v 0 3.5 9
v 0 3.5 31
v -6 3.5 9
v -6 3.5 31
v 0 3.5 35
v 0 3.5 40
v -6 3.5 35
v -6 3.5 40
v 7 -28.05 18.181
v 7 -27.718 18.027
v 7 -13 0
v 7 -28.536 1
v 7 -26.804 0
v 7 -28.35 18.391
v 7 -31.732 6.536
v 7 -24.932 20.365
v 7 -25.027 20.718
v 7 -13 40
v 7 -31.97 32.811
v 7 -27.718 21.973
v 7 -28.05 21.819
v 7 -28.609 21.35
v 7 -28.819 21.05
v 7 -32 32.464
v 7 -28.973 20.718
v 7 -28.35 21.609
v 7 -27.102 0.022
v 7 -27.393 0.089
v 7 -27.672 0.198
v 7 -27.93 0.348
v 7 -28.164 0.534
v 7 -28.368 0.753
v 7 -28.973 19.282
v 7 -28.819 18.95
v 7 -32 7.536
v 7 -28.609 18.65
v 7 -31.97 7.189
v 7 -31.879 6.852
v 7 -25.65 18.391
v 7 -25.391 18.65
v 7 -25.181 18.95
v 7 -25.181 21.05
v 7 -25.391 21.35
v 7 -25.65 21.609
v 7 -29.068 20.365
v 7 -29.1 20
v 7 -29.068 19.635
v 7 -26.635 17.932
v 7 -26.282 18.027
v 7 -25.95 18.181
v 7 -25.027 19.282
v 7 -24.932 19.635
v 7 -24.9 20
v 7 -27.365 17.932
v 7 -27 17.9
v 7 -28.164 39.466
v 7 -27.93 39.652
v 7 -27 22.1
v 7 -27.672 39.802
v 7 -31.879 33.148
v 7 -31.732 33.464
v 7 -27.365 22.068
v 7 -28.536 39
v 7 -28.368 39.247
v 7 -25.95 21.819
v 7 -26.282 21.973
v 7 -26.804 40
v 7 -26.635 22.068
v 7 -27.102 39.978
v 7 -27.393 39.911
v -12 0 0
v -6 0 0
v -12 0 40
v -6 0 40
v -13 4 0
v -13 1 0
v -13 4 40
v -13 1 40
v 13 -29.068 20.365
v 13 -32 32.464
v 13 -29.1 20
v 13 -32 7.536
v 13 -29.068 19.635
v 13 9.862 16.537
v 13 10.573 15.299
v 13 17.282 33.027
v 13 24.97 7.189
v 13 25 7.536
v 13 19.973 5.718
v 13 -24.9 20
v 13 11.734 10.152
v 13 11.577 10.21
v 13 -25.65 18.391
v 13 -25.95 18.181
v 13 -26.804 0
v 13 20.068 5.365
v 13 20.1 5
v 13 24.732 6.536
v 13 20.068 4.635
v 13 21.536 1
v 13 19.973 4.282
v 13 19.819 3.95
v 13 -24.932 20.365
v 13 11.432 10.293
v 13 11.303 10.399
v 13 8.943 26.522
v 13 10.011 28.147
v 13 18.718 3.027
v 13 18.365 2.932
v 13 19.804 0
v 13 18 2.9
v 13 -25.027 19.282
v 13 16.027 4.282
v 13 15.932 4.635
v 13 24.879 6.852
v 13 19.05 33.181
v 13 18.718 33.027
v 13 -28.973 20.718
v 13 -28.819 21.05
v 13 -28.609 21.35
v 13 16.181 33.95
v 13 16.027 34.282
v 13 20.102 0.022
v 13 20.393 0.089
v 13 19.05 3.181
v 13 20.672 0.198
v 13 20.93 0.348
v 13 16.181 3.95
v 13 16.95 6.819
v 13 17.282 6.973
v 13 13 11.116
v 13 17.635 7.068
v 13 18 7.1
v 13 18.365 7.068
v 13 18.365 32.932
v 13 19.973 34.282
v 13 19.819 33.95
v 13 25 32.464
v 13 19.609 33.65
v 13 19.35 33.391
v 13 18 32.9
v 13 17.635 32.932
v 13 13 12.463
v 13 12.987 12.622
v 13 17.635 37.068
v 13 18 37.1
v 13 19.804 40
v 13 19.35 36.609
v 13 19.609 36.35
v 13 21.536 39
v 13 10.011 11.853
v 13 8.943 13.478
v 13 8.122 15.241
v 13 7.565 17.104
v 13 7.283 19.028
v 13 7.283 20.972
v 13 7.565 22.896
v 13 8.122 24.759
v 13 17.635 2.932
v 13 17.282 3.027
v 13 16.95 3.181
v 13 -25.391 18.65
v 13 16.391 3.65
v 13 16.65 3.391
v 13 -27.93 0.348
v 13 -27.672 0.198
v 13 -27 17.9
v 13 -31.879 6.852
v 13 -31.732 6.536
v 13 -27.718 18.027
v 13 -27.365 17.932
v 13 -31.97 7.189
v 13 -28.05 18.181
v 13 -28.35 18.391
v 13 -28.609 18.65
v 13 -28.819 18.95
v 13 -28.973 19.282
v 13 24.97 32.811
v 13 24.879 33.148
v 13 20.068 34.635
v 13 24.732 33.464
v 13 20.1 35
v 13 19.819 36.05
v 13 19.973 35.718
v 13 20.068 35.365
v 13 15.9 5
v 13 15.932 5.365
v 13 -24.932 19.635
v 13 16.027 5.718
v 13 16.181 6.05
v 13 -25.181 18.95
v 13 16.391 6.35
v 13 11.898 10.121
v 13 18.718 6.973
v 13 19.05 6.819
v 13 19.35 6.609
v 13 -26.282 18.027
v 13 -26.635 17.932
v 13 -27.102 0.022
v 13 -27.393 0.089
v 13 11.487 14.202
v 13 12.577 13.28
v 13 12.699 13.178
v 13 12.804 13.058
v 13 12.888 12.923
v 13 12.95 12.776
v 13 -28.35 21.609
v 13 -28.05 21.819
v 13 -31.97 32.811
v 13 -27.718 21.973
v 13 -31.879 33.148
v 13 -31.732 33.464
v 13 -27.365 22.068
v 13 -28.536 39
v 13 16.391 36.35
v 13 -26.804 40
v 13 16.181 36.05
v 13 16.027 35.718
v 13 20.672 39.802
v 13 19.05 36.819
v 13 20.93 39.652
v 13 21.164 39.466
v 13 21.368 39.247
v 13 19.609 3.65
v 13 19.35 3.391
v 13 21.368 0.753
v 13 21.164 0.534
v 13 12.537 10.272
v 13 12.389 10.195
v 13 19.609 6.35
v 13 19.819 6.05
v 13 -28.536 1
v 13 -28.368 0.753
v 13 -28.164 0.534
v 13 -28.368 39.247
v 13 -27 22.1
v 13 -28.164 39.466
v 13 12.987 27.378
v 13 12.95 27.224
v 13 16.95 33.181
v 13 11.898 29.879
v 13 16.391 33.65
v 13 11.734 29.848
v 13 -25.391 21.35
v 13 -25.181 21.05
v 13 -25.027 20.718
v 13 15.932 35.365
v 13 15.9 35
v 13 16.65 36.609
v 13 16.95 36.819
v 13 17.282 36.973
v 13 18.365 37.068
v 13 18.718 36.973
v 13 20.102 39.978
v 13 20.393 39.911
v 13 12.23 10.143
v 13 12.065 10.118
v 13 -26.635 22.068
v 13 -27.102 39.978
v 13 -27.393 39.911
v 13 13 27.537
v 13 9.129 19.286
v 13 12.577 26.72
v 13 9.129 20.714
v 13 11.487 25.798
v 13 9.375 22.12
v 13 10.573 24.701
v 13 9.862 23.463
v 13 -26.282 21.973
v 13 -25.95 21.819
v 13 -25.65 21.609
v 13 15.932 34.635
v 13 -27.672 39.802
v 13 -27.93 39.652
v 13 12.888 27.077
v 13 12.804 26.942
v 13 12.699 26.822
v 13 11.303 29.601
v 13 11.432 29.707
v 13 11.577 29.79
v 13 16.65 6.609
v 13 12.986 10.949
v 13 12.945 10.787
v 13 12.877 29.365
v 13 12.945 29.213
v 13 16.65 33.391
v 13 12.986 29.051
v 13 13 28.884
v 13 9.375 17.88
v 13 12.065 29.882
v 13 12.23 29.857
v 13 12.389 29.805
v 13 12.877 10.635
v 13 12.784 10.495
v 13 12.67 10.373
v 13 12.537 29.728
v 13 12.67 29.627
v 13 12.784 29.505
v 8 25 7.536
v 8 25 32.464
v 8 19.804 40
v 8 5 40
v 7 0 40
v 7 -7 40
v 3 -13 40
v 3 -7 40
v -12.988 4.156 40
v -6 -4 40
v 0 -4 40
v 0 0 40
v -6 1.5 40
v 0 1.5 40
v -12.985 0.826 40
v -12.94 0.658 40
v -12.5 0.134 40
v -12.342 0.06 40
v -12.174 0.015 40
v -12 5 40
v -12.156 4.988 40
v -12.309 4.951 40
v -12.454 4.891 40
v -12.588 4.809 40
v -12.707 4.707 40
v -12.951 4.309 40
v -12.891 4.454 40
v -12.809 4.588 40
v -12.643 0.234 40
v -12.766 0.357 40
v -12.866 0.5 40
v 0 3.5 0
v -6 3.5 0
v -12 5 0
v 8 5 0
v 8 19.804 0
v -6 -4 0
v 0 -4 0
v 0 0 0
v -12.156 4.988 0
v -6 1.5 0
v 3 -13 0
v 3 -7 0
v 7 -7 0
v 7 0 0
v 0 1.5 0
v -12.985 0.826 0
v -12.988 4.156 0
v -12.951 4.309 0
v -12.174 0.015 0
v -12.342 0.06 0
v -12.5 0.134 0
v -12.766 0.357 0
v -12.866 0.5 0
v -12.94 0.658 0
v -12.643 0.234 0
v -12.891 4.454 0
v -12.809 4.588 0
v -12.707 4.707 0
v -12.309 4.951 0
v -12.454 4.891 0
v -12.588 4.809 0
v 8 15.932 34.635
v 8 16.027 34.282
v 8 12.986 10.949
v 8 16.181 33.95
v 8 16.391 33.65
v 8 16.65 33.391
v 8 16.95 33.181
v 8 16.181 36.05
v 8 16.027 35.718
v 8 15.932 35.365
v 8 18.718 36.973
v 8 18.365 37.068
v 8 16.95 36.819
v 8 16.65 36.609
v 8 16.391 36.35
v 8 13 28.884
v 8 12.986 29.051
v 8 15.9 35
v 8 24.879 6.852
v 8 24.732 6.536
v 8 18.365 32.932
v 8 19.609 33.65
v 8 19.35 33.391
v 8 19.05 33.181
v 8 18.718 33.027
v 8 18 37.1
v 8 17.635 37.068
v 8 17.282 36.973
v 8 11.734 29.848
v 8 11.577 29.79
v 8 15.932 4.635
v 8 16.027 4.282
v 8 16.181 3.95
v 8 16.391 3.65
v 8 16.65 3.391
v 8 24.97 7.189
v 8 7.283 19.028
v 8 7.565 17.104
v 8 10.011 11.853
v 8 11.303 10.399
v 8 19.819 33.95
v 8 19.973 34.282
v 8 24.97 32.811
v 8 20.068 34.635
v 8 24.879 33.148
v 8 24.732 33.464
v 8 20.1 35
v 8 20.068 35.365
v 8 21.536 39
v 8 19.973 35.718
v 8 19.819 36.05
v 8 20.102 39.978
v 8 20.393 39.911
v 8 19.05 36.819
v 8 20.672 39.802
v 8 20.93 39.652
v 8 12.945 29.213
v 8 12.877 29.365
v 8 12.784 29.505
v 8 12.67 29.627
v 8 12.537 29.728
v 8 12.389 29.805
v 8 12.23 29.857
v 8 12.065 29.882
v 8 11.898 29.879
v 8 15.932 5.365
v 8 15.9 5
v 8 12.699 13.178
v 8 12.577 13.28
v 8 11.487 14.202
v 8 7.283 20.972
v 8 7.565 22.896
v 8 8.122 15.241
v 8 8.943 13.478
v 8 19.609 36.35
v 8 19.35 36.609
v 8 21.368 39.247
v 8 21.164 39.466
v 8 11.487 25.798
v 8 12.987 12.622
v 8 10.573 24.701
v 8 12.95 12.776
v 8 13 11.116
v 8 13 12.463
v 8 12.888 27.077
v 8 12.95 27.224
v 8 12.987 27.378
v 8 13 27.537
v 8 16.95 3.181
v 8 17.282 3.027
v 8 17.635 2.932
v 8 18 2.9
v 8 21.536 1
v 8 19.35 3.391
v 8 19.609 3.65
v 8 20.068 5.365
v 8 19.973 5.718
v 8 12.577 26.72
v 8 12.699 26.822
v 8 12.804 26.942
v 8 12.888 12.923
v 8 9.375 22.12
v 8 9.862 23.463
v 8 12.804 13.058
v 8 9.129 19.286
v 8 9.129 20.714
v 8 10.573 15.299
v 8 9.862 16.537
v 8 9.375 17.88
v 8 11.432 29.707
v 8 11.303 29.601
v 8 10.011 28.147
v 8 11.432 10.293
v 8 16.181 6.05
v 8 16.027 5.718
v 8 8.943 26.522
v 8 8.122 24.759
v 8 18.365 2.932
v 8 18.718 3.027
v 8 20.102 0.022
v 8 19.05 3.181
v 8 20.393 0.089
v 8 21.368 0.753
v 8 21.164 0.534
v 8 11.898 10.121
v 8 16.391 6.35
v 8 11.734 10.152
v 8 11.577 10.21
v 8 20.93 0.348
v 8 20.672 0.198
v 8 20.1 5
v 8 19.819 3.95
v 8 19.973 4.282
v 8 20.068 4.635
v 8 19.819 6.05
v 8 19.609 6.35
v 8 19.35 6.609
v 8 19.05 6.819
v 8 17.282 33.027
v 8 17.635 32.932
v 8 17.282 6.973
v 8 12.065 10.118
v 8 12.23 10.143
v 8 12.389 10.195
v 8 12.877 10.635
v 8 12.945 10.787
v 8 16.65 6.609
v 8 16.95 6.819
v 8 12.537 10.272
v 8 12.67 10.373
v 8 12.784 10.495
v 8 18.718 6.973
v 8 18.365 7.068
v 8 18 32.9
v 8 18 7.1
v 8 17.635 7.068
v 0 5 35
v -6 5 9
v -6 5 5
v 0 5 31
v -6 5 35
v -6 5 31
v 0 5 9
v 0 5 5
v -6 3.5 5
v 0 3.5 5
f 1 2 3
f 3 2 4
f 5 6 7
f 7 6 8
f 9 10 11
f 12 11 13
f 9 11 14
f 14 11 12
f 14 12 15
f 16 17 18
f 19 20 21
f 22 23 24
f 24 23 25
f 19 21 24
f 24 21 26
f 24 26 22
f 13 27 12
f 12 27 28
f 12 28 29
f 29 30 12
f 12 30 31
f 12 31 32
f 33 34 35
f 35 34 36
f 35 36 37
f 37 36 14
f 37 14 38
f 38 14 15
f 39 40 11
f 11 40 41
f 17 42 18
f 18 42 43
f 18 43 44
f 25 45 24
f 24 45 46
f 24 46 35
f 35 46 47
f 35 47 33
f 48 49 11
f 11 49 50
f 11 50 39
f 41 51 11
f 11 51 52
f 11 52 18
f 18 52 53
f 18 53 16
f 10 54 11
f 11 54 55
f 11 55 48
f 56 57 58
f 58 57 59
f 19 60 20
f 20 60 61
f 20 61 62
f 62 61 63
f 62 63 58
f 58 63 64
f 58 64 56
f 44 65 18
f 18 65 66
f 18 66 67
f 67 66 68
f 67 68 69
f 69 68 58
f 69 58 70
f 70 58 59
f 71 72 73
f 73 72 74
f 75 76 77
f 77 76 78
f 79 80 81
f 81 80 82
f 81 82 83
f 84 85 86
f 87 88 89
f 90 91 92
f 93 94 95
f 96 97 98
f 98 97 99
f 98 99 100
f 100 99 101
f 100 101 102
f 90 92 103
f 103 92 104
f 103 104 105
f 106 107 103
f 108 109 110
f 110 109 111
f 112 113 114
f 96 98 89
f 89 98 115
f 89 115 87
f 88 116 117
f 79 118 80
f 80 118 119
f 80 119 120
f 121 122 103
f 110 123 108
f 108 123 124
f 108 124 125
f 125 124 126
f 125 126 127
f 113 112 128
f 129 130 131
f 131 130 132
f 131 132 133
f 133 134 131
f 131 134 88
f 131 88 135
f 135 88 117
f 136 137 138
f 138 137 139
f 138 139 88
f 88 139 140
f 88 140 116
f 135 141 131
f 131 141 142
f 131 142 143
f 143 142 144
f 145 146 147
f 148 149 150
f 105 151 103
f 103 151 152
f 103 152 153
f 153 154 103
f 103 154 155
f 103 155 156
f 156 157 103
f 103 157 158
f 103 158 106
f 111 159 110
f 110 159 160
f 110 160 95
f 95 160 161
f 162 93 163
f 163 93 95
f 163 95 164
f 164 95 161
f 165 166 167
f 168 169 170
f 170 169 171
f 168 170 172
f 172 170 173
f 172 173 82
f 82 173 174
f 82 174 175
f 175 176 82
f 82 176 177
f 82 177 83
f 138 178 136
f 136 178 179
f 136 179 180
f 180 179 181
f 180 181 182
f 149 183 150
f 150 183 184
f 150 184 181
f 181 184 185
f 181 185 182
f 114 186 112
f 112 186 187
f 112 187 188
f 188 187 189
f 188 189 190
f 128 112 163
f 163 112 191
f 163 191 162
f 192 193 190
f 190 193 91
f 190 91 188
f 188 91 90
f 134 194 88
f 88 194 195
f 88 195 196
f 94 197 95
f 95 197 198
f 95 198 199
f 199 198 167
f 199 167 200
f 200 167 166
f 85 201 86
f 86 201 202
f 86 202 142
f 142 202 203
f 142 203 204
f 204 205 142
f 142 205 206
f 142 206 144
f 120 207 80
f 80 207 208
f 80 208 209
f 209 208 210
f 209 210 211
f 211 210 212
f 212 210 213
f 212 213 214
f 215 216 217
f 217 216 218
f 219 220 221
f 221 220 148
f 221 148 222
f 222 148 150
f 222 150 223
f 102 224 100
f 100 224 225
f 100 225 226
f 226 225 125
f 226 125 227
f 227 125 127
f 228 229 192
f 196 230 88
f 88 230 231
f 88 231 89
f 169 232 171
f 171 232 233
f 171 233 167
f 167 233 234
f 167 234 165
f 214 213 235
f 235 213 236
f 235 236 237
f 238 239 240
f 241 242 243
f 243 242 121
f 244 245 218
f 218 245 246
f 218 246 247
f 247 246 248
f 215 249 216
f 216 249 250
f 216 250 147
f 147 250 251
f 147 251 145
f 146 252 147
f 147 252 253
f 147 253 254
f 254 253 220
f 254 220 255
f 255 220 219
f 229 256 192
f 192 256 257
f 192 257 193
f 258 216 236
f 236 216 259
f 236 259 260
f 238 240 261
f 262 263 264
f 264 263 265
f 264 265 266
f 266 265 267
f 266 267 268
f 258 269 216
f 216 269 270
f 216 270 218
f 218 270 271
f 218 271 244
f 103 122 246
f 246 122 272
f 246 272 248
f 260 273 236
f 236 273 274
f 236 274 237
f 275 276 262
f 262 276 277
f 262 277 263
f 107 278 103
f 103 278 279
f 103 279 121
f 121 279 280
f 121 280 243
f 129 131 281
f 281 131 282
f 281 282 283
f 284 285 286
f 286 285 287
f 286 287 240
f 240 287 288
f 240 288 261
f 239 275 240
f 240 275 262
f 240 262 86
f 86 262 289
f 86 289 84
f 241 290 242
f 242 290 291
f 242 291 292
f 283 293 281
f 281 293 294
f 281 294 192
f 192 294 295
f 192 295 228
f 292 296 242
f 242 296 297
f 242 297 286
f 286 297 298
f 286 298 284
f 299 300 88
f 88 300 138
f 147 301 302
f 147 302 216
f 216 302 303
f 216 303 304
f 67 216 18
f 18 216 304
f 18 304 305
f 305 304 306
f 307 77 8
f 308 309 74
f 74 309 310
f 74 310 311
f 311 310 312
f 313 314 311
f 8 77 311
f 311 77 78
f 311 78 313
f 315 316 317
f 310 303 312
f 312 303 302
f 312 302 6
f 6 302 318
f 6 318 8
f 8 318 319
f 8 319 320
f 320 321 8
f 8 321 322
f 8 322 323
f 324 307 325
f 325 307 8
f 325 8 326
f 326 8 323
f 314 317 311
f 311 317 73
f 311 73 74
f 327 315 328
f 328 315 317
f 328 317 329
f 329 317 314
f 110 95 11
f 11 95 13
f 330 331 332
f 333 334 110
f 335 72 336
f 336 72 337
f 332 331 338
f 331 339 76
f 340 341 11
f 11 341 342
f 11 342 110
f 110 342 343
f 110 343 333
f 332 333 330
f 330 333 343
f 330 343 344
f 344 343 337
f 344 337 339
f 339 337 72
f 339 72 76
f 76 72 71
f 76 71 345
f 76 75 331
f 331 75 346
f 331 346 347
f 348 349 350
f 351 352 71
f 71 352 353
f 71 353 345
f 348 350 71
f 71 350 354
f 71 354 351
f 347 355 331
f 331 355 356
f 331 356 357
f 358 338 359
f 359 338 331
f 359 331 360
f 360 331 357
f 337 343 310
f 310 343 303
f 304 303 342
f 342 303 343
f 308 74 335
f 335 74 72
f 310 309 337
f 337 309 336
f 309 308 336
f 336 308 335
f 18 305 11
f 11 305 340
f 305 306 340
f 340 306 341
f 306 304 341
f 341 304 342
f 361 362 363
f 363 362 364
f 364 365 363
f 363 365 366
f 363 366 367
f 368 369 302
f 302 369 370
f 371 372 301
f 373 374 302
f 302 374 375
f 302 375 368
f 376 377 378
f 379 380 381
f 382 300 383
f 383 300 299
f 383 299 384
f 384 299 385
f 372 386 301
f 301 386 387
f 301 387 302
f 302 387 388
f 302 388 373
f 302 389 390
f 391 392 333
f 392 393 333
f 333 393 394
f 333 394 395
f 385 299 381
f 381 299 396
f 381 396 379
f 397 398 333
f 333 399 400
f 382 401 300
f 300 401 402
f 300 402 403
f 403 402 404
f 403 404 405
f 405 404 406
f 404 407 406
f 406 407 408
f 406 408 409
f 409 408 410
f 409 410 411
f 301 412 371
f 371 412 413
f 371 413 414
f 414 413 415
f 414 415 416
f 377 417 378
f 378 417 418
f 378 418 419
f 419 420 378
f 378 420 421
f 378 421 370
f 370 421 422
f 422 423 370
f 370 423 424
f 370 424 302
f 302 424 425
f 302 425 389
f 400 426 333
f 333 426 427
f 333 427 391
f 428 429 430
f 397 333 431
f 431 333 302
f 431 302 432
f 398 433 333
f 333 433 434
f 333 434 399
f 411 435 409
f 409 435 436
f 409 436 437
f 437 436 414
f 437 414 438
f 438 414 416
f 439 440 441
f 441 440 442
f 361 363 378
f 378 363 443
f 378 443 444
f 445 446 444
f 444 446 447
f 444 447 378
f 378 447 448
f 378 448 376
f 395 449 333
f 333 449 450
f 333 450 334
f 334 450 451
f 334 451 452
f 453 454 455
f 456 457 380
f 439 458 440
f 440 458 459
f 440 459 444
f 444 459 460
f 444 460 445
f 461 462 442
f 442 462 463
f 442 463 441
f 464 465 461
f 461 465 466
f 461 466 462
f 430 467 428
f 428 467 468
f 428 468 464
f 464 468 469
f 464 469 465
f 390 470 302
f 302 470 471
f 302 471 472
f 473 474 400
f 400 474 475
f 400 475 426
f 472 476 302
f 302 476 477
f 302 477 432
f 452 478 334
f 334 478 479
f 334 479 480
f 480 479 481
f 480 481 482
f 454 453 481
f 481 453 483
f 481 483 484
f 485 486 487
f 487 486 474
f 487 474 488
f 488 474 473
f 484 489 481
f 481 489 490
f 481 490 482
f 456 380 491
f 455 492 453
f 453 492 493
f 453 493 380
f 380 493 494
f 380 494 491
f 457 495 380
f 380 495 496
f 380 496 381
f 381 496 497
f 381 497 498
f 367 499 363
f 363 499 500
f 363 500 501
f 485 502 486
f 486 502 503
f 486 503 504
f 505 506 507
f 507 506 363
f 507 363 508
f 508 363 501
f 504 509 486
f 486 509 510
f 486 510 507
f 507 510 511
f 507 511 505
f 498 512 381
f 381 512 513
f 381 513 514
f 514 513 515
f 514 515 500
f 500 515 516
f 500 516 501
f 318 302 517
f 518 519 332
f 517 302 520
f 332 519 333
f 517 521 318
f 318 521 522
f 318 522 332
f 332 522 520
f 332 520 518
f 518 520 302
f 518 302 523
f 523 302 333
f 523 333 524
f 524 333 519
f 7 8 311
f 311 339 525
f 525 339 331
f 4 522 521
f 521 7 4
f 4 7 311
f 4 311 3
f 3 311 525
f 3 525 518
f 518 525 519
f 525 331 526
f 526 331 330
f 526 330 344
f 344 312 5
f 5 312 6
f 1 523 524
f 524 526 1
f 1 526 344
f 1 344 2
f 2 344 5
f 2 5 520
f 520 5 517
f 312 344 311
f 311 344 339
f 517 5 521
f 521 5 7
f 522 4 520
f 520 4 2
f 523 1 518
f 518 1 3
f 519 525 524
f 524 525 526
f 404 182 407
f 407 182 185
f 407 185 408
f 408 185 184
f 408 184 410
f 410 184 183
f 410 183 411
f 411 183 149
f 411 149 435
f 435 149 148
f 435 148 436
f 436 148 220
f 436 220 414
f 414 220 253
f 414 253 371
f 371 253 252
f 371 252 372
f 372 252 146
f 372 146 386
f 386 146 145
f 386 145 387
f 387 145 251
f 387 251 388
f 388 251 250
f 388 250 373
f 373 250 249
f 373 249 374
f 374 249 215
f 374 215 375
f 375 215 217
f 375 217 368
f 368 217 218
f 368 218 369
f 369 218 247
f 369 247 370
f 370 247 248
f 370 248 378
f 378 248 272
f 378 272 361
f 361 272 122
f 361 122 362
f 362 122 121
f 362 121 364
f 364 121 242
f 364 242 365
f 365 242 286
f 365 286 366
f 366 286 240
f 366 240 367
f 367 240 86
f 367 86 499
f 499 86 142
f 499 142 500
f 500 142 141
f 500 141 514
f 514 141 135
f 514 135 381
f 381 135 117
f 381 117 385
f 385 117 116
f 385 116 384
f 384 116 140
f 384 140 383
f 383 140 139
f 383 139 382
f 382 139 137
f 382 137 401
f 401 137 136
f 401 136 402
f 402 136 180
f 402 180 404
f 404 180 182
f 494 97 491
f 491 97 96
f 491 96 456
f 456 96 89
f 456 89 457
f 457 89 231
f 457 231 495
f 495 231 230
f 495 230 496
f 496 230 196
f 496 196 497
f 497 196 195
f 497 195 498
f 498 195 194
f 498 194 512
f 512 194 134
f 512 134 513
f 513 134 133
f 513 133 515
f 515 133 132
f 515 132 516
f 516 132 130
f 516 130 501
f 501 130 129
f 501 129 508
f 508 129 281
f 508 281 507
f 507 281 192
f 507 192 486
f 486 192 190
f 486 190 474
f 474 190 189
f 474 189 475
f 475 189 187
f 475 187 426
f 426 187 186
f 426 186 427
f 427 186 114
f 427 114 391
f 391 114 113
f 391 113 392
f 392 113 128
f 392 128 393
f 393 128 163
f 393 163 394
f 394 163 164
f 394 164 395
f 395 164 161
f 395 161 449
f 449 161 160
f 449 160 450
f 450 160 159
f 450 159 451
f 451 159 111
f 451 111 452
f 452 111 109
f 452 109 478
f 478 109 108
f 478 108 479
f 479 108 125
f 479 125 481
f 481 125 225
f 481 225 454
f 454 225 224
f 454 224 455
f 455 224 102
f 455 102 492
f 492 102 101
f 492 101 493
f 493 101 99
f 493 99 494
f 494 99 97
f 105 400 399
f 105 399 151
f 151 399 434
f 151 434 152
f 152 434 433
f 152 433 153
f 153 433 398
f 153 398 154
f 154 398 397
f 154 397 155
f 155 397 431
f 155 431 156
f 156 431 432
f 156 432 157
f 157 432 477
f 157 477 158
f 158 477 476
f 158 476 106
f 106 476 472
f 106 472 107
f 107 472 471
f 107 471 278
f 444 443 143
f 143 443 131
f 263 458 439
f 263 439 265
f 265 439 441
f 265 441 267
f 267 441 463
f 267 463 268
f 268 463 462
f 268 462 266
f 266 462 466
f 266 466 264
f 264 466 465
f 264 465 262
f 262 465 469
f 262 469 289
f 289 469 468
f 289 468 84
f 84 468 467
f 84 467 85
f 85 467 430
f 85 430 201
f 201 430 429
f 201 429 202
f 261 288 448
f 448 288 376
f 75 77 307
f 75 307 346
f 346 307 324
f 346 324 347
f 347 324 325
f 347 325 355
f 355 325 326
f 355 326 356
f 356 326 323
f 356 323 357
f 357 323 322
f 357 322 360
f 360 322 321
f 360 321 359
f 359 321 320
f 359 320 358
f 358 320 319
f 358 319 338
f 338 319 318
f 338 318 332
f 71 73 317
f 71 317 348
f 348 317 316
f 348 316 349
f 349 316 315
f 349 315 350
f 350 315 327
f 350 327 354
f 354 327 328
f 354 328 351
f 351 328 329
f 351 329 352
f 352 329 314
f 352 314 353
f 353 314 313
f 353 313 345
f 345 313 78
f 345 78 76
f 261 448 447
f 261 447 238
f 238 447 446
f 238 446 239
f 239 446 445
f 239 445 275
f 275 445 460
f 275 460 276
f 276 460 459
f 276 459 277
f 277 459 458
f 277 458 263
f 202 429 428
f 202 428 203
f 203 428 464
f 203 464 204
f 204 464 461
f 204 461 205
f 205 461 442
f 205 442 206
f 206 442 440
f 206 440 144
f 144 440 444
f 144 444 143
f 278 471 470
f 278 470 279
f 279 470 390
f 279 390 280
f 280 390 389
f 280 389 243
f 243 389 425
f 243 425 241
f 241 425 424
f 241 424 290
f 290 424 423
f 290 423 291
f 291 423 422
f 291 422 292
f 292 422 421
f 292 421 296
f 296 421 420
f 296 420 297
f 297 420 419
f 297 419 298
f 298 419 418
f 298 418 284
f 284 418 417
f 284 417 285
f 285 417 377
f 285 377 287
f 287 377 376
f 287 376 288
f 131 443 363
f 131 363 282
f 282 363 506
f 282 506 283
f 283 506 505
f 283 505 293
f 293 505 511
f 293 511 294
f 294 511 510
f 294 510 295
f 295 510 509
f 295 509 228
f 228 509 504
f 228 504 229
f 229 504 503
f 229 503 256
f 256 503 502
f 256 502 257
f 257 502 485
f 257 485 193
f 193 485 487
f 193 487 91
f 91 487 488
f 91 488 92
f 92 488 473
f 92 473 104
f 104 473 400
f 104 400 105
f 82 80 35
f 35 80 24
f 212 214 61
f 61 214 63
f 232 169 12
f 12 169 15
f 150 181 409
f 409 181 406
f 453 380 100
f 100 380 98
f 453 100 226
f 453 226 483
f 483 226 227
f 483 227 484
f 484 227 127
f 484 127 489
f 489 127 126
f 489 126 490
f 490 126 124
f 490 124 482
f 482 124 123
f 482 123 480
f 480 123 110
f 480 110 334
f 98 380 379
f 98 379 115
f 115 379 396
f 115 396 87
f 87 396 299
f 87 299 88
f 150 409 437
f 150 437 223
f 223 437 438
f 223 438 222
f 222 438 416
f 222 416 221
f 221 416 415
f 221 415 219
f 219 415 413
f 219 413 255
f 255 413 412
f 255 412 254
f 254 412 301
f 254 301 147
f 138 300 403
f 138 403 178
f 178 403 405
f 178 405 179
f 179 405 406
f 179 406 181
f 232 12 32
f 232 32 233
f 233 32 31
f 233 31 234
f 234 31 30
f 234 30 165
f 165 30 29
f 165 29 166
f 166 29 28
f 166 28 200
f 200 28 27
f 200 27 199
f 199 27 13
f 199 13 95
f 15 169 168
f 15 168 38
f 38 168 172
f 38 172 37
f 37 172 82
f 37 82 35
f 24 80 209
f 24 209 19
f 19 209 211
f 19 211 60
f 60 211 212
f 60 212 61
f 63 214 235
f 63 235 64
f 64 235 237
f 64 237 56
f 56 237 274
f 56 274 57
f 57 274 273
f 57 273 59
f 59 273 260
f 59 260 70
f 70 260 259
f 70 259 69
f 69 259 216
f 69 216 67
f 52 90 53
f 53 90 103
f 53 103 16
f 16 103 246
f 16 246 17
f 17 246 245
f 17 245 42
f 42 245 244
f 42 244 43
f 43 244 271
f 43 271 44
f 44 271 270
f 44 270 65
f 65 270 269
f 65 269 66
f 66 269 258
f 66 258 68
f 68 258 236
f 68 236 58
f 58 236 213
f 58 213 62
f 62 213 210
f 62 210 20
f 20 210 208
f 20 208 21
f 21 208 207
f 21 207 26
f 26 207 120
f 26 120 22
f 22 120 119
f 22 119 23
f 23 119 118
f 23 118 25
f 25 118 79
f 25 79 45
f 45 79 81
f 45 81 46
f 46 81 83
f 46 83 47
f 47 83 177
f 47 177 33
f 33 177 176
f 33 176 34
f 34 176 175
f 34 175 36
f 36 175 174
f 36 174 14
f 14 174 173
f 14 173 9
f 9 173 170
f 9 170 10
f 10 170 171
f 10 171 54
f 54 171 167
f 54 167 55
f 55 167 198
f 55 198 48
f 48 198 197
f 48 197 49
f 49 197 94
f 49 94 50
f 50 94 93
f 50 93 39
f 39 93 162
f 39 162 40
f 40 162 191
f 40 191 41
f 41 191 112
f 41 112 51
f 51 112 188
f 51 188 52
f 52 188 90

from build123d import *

# Parameters (mm, degrees)
ESQUISSE1_W              = 26
ESQUISSE1_H              = 50
BOSS_EXTRU_1_DEPTH       = 40
ESQUISSE2_W              = 20
ESQUISSE2_H              = 20
ENL_V_MAT_EXTRU_1_DEPTH  = 41
ESQUISSE3_W              = 6
ESQUISSE3_H              = 4
ESQUISSE3_W_2            = 4
ESQUISSE3_H_2            = 6
BOSS_EXTRU_2_DEPTH       = 40
ESQUISSE7_W              = 21
ESQUISSE7_H              = 20
ENL_V_MAT_EXTRU_4_DEPTH  = 41
ESQUISSE8_W              = 6
ESQUISSE8_H              = 2
ENL_V_MAT_EXTRU_5_DEPTH  = 41
ESQUISSE9_W              = 6
ESQUISSE9_H              = 4
ENL_V_MAT_EXTRU_6_DEPTH  = 3.5
ESQUISSE10_R             = 2.1
ENL_V_MAT_EXTRU_7_DEPTH  = 27
ENL_V_MAT_EXTRU_9_DEPTH  = 6
ESQUISSE13_W             = 26
ESQUISSE13_H             = 5
ENL_V_MAT_EXTRU_10_DEPTH = 41
CONG_1_R                 = 1
CONG_2_R                 = 1
ESQUISSE14_W             = 6
ESQUISSE14_H             = 40
BOSS_EXTRU_3_DEPTH       = 12
CHANFREIN1_SIZE          = 7
CHANFREIN1_SIZE2         = 4.041451884
CHANFREIN1_PART_2_SIZE   = 7
CHANFREIN1_PART_2_SIZE2  = 4.041451884
CONG_3_R                 = 2
ESQUISSE16_R             = 2.1
ENL_V_MAT_EXTRU_11_DEPTH = 27


with BuildPart() as part:
    # Esquisse1 → Boss.-Extru.1 (new body)
    with BuildSketch(Plane.XY):
        Rectangle(ESQUISSE1_W, ESQUISSE1_H)
    extrude(amount=BOSS_EXTRU_1_DEPTH)

    # Esquisse2 → Enlèv. mat.-Extru.1 (cut, through all)
    with BuildSketch(Plane.XY.offset(40)):
        with Locations((-3, -10)):
            Rectangle(ESQUISSE2_W, ESQUISSE2_H)
    extrude(amount=-ENL_V_MAT_EXTRU_1_DEPTH, mode=Mode.SUBTRACT)

    # Esquisse3 → Boss.-Extru.2 (add)
    with BuildSketch(Plane.XY.offset(40)):
        with Locations((-3, -2)):
            Rectangle(ESQUISSE3_W, ESQUISSE3_H)
        with Locations((5, -10)):
            Rectangle(ESQUISSE3_W_2, ESQUISSE3_H_2)
    extrude(amount=-BOSS_EXTRU_2_DEPTH)

    # Esquisse7 → Enlèv. mat.-Extru.4 (cut, through all)
    with BuildSketch(Plane.XY.offset(40)):
        with Locations((-2.5, 15)):
            Rectangle(ESQUISSE7_W, ESQUISSE7_H)
    extrude(amount=-ENL_V_MAT_EXTRU_4_DEPTH, mode=Mode.SUBTRACT)

    # Esquisse8 → Enlèv. mat.-Extru.5 (cut, through all)
    with BuildSketch(Plane.XY.offset(40)):
        with Locations((-3, 2.5)):
            Rectangle(ESQUISSE8_W, ESQUISSE8_H)
    extrude(amount=-ENL_V_MAT_EXTRU_5_DEPTH, mode=Mode.SUBTRACT)

    # Esquisse9 → Enlèv. mat.-Extru.6 (cut)
    with BuildSketch(Plane(origin=(0, 5, 0), x_dir=(1, 0, 0), z_dir=(0, 1, 0))):
        with Locations((-3, -33)):
            Rectangle(ESQUISSE9_W, ESQUISSE9_H)
        with Locations((-3, -7)):
            Rectangle(ESQUISSE9_W, ESQUISSE9_H)
    extrude(amount=-ENL_V_MAT_EXTRU_6_DEPTH, mode=Mode.SUBTRACT)

    # Esquisse10 → Enlèv. mat.-Extru.7 (cut, through all)
    with BuildSketch(Plane(origin=(13, 0, 0), x_dir=(0, 0, -1), z_dir=(1, 0, 0))):
        with Locations((-35, 18)):
            Circle(ESQUISSE10_R)
        with Locations((-5, 18)):
            Circle(ESQUISSE10_R)
    extrude(amount=-ENL_V_MAT_EXTRU_7_DEPTH, mode=Mode.SUBTRACT)

    # Esquisse12 → Enlèv. mat.-Extru.9 (cut, through all)
    with BuildSketch(Plane.ZY.offset(-8)):
        with BuildLine():
            Line((9, 13), (13, 13))
            ThreePointArc((13, 13), (20, 9.097518313), (27, 13))
            Line((27, 13), (31, 13))
            ThreePointArc((31, 13), (20, 7.247854519), (9, 13))
        make_face()
    extrude(amount=-ENL_V_MAT_EXTRU_9_DEPTH, mode=Mode.SUBTRACT)

    # Esquisse13 → Enlèv. mat.-Extru.10 (cut, through all)
    with BuildSketch(Plane(origin=(0, 0, 0), x_dir=(-1, 0, 0), z_dir=(0, 0, -1))):
        with Locations((0, -22.5)):
            Rectangle(ESQUISSE13_W, ESQUISSE13_H)
    extrude(amount=-ENL_V_MAT_EXTRU_10_DEPTH, mode=Mode.SUBTRACT)

    # Congé1
    cong_1_edges = [part.edges().sort_by_distance(p)[0] for p in [
        (-13, 0, 20),
        (-13, 5, 20),
    ]]
    fillet(cong_1_edges, radius=CONG_1_R)

    # Congé2
    cong_2_edges = [part.edges().sort_by_distance(p)[0] for p in [
        (10.5, 13, 31),
        (10.5, 13, 9),
        (10.5, 13, 13),
        (10.5, 13, 27),
    ]]
    fillet(cong_2_edges, radius=CONG_2_R)

    # Esquisse14 → Boss.-Extru.3 (add)
    with BuildSketch(Plane.XZ.offset(20)):
        with Locations((10, 20)):
            Rectangle(ESQUISSE14_W, ESQUISSE14_H)
    extrude(amount=BOSS_EXTRU_3_DEPTH)

    # Chanfrein1
    chanfrein1_edges = [part.edges().sort_by_distance(p)[0] for p in [
        (10.5, 25, 40),
        (10.5, 25, 0),
    ]]
    chanfrein1_side = [part.faces().sort_by_distance(p)[0] for p in [
        (10.5, 25, 20),
    ]]
    chamfer(chanfrein1_edges, length=CHANFREIN1_SIZE, length2=CHANFREIN1_SIZE2, reference=chanfrein1_side[0])

    # Chanfrein1 part 2
    chanfrein1_part_2_edges = [part.edges().sort_by_distance(p)[0] for p in [
        (10, -32, 40),
        (10, -32, 0),
    ]]
    chanfrein1_part_2_side = [part.faces().sort_by_distance(p)[0] for p in [
        (10, -32, 20),
    ]]
    chamfer(chanfrein1_part_2_edges, length=CHANFREIN1_PART_2_SIZE, length2=CHANFREIN1_PART_2_SIZE2, reference=chanfrein1_part_2_side[0])

    # Congé3
    cong_3_edges = [part.edges().sort_by_distance(p)[0] for p in [
        (10, -32, 7),
        (10, -32, 33),
        (10.5, 20.958548116, 40),
        (10, -27.958548116, 40),
        (10.5, 20.958548116, 0),
        (10, -27.958548116, 0),
        (10.5, 25, 7),
        (10.5, 25, 33),
    ]]
    fillet(cong_3_edges, radius=CONG_3_R)

    # Esquisse16 → Enlèv. mat.-Extru.11 (cut, through all)
    with BuildSketch(Plane(origin=(13, 0, 0), x_dir=(0, 0, -1), z_dir=(1, 0, 0))):
        with Locations((-20, -27)):
            Circle(ESQUISSE16_R)
    extrude(amount=-ENL_V_MAT_EXTRU_11_DEPTH, mode=Mode.SUBTRACT)


solid = part.part
